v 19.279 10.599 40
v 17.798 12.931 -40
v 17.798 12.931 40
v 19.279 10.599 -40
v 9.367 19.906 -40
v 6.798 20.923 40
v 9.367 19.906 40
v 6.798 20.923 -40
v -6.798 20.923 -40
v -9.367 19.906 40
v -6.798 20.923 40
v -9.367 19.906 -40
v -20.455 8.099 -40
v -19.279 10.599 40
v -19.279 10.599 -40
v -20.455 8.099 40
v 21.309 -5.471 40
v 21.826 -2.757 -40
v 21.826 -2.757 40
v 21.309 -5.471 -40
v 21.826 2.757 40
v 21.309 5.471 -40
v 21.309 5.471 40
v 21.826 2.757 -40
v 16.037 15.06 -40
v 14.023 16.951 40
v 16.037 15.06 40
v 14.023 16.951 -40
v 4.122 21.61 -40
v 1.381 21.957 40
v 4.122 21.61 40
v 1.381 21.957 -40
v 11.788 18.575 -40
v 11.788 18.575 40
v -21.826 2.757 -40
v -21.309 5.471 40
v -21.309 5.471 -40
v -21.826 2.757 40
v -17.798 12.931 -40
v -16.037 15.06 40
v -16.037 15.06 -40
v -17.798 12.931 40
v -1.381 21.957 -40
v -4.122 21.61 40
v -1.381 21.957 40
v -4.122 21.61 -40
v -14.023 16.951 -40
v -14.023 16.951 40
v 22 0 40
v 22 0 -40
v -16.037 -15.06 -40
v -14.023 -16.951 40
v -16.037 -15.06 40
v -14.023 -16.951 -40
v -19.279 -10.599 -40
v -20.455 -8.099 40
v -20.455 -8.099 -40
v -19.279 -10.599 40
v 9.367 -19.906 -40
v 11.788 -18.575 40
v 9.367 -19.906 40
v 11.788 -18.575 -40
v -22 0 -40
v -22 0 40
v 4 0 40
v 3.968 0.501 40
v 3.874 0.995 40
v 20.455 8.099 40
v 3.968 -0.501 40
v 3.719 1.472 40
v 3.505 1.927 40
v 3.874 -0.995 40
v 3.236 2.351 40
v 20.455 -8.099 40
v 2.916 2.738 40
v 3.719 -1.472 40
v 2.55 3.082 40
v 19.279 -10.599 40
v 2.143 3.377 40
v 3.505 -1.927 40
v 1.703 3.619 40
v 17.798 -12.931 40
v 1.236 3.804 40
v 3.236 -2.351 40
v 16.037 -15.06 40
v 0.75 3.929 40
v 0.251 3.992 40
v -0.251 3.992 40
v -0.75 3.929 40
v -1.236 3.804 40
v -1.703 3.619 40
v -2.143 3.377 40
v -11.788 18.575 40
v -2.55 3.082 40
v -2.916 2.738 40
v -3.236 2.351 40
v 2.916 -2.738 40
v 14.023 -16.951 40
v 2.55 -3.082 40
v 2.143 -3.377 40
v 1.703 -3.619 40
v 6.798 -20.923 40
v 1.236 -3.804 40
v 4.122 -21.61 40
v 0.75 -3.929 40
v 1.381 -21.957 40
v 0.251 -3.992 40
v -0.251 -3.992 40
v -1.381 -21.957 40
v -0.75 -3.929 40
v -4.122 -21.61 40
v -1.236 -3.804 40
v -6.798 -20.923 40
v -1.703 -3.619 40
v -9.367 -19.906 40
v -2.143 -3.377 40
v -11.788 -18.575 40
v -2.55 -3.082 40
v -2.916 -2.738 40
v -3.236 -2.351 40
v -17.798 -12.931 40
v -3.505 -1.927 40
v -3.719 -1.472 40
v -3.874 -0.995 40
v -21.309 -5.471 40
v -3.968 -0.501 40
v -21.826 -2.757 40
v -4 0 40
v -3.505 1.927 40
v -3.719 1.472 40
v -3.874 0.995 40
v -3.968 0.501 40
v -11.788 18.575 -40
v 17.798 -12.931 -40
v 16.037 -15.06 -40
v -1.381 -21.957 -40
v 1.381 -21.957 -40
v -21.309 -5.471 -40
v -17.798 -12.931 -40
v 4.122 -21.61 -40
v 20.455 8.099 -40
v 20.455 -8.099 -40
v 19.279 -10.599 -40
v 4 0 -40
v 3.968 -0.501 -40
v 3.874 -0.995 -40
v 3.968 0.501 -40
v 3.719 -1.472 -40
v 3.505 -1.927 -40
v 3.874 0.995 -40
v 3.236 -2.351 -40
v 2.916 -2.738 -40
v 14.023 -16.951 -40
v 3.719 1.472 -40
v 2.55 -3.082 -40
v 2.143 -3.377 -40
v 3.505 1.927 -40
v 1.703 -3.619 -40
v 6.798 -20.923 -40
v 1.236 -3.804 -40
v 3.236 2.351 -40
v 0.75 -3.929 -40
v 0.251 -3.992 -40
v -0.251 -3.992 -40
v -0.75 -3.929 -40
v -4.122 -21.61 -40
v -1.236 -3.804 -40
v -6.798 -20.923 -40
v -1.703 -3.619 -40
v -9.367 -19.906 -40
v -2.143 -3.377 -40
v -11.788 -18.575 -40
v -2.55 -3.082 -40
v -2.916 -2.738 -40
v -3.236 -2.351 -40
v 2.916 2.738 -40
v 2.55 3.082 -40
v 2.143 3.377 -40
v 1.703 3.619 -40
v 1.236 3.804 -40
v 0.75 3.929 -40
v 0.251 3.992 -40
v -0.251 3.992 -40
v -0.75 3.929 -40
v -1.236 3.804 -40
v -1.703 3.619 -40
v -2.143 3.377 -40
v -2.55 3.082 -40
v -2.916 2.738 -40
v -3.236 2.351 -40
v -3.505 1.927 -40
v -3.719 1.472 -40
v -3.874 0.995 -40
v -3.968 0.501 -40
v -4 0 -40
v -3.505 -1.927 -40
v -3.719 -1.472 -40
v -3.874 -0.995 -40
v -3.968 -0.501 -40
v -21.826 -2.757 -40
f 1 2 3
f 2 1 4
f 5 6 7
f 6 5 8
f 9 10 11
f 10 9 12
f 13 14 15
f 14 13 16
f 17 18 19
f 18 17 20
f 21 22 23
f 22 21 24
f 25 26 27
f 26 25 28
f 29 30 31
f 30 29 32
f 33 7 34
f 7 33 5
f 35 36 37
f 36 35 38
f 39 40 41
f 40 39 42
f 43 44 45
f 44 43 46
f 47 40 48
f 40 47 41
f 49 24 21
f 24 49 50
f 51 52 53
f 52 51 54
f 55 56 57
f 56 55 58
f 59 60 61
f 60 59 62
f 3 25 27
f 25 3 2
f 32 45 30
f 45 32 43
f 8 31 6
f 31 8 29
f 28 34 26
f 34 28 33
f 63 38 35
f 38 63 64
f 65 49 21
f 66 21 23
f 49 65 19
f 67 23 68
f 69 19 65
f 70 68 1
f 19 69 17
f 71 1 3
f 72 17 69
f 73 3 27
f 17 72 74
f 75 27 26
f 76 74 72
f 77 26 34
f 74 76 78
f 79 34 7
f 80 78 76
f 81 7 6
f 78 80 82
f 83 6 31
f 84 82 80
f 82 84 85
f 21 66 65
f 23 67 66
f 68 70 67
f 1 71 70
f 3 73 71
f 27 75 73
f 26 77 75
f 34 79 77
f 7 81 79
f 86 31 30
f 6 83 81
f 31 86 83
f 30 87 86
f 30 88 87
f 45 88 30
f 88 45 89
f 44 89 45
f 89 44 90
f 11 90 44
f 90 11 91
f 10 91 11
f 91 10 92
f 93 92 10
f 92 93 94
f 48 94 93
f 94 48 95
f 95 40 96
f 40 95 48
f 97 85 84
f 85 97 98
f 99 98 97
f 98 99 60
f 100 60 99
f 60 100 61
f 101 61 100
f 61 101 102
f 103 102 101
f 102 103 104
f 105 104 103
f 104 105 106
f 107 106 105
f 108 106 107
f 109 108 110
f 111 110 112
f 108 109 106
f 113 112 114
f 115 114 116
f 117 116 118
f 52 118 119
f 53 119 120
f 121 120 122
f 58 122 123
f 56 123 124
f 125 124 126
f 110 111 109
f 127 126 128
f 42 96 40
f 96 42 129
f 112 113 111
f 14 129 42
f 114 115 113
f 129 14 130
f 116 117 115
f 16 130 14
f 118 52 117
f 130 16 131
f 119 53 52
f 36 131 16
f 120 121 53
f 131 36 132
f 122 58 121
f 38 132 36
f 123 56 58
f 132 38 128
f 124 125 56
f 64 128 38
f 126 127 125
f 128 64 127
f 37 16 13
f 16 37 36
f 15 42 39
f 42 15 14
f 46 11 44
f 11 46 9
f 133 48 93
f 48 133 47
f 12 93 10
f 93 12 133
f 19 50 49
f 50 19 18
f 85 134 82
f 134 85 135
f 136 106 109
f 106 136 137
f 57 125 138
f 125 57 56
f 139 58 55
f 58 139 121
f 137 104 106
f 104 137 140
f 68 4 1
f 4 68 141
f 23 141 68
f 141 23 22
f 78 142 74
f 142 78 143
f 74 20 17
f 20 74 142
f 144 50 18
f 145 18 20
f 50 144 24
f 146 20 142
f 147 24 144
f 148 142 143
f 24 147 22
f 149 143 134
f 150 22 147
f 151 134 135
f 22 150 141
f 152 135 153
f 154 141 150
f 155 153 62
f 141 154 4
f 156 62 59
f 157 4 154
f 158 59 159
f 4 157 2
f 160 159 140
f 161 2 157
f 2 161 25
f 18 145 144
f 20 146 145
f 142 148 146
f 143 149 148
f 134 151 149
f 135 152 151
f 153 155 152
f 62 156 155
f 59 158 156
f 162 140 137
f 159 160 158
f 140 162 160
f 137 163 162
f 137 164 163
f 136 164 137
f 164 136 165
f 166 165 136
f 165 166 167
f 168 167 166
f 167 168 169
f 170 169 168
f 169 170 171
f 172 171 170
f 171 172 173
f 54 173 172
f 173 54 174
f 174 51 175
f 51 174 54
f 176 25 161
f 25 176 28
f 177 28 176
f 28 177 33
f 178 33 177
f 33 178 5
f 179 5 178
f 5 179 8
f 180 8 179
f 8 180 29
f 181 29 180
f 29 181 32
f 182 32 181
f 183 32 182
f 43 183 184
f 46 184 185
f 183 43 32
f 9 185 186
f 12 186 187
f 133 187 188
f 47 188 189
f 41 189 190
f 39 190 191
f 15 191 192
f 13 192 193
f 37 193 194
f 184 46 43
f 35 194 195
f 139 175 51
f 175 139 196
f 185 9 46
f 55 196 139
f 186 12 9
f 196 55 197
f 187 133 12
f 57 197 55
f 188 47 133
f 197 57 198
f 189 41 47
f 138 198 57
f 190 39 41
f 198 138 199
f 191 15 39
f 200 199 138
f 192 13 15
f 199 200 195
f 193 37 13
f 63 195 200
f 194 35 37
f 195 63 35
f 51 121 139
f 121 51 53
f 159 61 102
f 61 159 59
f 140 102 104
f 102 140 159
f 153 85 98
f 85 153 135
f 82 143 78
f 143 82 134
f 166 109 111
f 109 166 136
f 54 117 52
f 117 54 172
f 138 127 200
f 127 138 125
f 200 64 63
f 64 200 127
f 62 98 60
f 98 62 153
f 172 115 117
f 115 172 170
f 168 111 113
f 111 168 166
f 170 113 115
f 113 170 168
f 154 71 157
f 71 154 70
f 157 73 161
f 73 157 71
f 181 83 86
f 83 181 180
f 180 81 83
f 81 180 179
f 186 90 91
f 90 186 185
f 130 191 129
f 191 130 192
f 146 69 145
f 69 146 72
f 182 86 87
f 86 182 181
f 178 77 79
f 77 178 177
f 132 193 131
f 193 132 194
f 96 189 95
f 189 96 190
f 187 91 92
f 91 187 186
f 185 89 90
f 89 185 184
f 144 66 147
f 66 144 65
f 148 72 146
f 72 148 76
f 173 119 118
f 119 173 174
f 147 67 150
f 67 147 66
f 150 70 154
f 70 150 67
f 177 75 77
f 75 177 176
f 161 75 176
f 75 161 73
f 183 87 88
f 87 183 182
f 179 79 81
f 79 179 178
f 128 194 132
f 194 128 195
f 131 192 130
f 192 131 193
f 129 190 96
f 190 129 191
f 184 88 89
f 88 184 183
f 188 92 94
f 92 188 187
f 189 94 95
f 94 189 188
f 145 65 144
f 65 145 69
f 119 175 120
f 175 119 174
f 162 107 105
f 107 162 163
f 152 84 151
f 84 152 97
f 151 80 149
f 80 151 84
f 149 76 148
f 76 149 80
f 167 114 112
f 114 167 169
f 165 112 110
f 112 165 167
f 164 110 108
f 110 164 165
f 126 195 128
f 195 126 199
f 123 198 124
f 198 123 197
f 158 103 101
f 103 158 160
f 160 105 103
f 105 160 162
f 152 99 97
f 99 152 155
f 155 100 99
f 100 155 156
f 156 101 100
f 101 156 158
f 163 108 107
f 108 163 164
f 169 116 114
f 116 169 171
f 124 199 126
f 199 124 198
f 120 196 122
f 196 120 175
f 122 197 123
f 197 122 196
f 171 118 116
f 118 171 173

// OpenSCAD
$fn = 50;


difference() {
	union() {
		translate(v = [0, 0, -40.0000000000]) {
			cylinder(h = 80, r = 22.0000000000);
		}
	}
	union() {
		translate(v = [0, 0, -100.0000000000]) {
			cylinder(h = 200, r = 4);
		}
	}
}
